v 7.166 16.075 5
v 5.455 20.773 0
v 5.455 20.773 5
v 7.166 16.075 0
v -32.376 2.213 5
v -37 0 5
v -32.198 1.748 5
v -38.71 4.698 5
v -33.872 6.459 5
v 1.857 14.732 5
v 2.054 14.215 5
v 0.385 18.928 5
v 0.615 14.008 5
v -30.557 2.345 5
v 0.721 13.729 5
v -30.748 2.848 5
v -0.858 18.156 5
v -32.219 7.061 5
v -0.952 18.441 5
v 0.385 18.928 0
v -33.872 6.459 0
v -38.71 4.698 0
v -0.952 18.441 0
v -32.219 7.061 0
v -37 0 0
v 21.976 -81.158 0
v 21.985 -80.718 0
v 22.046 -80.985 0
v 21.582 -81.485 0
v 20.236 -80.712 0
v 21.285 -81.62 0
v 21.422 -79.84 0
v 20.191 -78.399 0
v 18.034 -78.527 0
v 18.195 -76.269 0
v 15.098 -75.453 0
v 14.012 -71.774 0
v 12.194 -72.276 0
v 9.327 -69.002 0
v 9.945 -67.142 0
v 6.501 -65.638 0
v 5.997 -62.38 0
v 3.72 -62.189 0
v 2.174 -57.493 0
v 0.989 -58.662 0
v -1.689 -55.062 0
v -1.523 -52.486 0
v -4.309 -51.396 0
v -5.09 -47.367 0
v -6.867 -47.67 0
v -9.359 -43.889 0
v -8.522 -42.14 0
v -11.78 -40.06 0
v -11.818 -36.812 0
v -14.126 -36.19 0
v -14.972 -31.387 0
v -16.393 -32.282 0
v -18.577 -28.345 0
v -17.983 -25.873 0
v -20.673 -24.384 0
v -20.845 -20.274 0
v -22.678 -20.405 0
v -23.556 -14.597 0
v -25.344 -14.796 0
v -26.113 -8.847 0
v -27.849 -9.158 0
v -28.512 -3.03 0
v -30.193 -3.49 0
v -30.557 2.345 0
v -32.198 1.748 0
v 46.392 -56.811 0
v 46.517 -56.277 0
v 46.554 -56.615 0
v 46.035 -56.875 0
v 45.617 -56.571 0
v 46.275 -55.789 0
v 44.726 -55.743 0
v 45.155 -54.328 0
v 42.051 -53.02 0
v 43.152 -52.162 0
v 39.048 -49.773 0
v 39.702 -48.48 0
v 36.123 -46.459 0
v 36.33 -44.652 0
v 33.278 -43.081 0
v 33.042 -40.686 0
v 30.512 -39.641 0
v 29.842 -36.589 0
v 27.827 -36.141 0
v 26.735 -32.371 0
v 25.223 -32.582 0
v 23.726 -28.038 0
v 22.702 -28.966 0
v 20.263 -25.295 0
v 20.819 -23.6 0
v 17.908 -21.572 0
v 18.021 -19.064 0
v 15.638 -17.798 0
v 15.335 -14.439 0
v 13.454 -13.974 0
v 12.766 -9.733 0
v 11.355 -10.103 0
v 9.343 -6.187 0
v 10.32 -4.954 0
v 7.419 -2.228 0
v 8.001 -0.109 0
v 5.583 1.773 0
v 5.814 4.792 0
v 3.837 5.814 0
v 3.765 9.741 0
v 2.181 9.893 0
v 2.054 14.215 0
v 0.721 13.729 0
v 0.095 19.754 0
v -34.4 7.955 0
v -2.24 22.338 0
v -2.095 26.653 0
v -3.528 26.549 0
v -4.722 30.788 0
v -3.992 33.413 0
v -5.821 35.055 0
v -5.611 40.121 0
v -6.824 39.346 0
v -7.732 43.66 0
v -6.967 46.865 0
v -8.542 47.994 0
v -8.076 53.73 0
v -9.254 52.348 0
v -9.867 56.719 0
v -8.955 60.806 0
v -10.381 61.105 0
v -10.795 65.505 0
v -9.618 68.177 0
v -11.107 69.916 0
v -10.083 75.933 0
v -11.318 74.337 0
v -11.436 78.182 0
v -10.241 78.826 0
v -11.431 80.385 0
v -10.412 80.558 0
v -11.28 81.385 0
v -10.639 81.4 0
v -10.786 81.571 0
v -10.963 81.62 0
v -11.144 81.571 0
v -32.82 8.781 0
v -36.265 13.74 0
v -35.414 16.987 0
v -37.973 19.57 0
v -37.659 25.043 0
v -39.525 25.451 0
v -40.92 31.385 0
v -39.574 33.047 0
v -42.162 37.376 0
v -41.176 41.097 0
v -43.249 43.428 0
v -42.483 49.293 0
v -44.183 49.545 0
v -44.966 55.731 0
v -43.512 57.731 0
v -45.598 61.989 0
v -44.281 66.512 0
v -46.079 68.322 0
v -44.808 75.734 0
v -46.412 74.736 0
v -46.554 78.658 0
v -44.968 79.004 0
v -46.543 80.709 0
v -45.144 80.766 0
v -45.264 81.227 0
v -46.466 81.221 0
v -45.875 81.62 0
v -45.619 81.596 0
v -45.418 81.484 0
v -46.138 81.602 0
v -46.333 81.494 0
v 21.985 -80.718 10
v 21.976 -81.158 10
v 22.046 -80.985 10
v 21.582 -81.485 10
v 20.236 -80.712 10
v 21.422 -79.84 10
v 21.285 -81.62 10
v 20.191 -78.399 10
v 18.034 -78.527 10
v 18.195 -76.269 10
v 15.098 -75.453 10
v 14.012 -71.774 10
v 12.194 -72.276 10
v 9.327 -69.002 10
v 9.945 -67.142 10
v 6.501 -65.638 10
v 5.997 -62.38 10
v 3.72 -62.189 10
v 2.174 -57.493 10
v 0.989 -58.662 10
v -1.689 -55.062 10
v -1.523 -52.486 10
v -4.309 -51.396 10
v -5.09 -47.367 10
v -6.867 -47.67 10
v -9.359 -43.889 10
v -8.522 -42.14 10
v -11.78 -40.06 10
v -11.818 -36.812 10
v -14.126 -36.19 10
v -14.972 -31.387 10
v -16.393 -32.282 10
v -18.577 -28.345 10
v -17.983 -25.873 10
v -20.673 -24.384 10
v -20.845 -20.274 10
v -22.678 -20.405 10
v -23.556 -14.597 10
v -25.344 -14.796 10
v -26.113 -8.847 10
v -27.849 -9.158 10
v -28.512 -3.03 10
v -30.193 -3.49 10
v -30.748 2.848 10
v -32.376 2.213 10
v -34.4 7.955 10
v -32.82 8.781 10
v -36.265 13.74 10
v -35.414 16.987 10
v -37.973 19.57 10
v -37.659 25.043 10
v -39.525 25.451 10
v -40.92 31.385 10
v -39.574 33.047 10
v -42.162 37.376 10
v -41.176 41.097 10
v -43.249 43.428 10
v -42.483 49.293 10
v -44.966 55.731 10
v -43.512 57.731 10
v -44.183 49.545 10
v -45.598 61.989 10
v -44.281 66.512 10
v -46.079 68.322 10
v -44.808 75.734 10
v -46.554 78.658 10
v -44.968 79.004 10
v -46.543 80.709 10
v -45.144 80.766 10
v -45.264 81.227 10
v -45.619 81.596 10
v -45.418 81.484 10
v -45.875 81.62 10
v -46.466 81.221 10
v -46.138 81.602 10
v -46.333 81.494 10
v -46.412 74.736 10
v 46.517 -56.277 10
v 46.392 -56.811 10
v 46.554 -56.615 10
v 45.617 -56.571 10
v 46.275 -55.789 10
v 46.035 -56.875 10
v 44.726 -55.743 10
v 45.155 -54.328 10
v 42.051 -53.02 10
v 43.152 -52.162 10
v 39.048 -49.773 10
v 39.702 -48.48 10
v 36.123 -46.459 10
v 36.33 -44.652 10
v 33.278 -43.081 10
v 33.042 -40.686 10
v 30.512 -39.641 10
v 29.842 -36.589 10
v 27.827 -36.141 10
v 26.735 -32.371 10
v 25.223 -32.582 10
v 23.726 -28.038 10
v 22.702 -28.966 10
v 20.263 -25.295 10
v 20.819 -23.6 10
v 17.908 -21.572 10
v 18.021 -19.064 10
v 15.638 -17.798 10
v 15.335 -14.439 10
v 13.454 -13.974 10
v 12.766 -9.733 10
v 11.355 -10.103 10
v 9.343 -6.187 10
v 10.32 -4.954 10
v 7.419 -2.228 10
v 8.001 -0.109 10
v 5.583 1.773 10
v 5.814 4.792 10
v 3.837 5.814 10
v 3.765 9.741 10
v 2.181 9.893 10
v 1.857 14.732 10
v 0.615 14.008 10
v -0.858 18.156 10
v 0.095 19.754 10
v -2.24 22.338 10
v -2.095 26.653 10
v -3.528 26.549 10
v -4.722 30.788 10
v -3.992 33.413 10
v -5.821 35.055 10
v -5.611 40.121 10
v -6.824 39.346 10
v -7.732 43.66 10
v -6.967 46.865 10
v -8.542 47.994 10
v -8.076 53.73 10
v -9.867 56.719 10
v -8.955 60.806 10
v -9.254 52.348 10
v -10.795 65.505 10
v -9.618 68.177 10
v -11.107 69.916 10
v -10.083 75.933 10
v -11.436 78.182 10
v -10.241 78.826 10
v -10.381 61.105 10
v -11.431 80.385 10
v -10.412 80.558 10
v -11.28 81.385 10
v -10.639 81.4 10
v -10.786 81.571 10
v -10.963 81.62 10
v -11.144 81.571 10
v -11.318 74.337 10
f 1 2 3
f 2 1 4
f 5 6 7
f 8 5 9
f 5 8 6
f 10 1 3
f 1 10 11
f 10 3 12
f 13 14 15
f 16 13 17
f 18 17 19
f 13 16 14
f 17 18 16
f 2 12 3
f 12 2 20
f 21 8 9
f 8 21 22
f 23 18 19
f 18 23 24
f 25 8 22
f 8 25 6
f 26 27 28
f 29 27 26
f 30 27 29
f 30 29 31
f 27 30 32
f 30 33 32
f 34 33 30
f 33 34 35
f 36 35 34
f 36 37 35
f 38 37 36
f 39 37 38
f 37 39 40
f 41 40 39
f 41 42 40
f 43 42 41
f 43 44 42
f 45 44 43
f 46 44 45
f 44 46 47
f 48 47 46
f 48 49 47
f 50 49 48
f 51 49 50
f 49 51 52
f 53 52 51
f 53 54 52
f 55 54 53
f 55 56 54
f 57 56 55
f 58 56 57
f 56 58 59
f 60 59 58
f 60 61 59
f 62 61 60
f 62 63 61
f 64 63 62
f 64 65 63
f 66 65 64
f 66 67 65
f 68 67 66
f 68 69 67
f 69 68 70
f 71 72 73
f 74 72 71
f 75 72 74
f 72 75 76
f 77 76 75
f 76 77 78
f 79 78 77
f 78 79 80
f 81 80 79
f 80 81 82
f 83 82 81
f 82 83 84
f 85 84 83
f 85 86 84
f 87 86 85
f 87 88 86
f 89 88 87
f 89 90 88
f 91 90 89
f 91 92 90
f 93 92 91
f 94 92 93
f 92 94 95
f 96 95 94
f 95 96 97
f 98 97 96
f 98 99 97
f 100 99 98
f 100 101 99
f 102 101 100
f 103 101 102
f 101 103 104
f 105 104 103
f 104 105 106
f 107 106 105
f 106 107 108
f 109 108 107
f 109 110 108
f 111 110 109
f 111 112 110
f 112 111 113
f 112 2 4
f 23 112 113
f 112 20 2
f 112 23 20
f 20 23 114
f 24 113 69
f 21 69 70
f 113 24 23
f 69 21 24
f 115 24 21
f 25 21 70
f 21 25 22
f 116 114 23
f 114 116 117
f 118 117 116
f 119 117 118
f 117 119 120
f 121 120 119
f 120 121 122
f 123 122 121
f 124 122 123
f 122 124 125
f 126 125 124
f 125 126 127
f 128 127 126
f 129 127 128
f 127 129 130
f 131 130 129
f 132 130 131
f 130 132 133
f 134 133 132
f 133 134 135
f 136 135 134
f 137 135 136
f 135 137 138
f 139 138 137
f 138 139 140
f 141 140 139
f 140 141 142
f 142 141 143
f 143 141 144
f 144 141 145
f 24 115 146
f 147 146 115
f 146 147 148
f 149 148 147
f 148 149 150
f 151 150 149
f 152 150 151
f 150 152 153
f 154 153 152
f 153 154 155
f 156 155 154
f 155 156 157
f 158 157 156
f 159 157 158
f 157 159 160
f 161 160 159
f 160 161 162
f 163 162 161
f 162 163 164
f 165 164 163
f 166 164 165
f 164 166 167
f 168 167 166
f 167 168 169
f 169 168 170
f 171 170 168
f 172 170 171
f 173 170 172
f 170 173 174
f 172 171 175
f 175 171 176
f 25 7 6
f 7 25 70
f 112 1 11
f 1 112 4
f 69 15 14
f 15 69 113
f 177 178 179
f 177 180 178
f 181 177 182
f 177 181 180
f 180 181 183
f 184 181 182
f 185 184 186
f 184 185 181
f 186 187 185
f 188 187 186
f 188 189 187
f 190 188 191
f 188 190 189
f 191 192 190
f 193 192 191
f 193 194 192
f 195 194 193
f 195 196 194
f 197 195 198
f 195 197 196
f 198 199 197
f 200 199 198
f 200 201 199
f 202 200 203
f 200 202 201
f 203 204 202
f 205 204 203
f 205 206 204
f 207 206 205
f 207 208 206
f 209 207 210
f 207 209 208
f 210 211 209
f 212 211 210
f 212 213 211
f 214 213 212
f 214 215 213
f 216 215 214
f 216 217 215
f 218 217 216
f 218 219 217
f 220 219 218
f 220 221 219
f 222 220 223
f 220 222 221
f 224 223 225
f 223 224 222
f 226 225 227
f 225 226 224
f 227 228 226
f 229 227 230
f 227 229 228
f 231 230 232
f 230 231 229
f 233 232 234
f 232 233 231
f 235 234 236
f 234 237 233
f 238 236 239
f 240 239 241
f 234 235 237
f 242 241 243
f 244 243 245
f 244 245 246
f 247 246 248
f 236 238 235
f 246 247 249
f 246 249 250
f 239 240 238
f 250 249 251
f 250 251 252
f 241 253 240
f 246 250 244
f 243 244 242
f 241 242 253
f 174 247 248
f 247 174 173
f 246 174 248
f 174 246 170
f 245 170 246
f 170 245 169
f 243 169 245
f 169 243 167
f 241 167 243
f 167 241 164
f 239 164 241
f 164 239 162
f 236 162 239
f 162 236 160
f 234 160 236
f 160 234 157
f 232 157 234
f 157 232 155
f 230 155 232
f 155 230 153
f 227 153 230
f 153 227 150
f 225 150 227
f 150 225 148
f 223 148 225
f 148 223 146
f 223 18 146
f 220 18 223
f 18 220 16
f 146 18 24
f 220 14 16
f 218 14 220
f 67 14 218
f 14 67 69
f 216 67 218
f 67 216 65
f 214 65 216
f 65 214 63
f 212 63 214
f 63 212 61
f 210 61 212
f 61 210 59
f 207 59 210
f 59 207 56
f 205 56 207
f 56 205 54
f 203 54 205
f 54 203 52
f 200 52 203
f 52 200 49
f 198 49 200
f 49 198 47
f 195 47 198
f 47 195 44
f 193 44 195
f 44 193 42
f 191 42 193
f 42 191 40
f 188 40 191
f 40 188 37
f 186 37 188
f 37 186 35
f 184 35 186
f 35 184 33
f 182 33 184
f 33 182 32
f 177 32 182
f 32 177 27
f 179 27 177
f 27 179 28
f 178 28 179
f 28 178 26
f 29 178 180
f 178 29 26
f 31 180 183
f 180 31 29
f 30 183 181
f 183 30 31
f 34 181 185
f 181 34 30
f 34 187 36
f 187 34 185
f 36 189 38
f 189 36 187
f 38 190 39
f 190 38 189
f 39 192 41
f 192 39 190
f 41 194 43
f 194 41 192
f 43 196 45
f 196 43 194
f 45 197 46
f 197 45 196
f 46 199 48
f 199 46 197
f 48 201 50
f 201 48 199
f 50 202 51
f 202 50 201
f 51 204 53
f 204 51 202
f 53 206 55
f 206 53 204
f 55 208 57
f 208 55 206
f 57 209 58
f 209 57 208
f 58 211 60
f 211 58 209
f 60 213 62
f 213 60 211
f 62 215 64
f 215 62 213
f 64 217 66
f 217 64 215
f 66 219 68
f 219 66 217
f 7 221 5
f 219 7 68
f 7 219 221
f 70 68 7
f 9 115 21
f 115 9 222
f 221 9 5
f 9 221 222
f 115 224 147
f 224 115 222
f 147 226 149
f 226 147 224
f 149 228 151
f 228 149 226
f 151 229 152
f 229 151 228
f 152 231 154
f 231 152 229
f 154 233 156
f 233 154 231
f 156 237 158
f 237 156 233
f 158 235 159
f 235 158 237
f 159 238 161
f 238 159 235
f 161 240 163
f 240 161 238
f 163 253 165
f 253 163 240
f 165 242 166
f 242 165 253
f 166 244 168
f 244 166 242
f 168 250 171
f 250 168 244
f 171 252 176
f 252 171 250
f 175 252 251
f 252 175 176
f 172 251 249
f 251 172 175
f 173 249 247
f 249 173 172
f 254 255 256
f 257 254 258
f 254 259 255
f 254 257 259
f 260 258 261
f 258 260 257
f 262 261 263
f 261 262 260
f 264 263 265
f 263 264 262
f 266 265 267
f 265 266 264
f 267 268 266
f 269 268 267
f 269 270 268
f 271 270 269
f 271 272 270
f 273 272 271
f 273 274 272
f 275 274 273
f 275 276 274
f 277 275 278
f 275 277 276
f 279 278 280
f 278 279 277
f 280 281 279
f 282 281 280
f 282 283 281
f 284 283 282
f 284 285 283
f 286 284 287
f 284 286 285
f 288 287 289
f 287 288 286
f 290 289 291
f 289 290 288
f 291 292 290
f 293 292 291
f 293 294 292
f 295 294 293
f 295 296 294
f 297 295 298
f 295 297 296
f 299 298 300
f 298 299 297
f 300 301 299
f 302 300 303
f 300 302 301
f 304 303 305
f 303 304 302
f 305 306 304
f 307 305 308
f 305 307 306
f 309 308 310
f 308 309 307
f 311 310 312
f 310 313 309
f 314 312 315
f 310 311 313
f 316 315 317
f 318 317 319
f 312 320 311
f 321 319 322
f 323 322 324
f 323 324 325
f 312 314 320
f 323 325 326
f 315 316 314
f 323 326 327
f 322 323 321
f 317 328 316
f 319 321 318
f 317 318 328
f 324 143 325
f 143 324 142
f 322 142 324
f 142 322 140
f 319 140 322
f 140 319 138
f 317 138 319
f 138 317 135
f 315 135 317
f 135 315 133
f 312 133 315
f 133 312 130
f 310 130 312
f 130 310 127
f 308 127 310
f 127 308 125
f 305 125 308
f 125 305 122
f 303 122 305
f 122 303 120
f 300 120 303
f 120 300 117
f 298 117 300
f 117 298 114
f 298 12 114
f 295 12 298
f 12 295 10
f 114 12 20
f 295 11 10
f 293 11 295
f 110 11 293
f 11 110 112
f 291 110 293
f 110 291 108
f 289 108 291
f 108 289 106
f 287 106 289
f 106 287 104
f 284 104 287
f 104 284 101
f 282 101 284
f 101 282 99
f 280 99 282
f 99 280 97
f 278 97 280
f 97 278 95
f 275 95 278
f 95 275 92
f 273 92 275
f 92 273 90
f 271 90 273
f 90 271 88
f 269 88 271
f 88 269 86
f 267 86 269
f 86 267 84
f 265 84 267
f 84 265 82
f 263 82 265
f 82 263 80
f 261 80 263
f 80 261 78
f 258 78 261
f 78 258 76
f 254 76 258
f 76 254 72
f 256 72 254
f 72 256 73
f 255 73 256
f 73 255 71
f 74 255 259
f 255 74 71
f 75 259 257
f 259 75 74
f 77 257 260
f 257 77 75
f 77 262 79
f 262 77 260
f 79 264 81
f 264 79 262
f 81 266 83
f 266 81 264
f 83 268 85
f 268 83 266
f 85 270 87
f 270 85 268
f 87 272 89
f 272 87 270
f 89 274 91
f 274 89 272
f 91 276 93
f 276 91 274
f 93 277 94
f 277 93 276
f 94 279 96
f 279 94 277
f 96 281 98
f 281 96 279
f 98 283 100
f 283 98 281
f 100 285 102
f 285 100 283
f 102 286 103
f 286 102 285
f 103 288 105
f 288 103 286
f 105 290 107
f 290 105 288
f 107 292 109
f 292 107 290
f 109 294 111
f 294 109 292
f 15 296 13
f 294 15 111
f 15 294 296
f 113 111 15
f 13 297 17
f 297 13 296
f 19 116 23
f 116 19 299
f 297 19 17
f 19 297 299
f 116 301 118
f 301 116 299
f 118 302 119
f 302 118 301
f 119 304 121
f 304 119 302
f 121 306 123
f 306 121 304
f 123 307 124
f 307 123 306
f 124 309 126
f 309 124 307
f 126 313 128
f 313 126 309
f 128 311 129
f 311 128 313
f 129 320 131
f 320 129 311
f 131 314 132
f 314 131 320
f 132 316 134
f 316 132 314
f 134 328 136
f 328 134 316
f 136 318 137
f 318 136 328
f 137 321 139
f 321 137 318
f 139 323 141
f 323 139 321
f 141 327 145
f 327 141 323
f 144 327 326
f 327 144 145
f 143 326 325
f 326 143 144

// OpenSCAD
// Module names are of the form poly_<inkscape-path-id>().  As a result,
// you can associate a polygon in this OpenSCAD program with the corresponding
// SVG element in the Inkscape document by looking for the XML element with
// the attribute id="inkscape-path-id".

// fudge value is used to ensure that subtracted solids are a tad taller
// in the z dimension than the polygon being subtracted from.  This helps
// keep the resulting .stl file manifold.
fudge = 0.1;

translate([-37,0,0])rotate([0,0,20]) cube([47,5,5]);
module poly_path3621(h)
{
  scale([25.4/90, -25.4/90, 1]) union()
  {
    linear_extrude(height=h)
      polygon([[63.901080,278.246520],[53.497240,267.353050],[43.208361,256.095766],[33.049464,244.496114],[23.035568,232.575535],[13.181694,220.355473],[3.502861,207.857371],[-5.985910,195.102672],[-15.269600,182.112820],[-24.333188,168.909258],[-33.161655,155.513429],[-41.739980,141.946776],[-50.053143,128.230743],[-58.086125,114.386772],[-65.823905,100.436308],[-73.251464,86.400793],[-80.353781,72.301670],[-89.803085,52.424861],[-98.677926,32.450628],[-106.981598,12.365769],[-114.717395,-7.842919],[-121.888610,-28.188638],[-128.498537,-48.684591],[-134.550468,-69.343980],[-140.047699,-90.180007],[-144.993521,-111.205875],[-149.391230,-132.434786],[-153.244117,-153.879943],[-156.555478,-175.554547],[-159.328604,-197.471802],[-161.566791,-219.644909],[-163.273331,-242.087071],[-164.451518,-264.811490],[-164.954672,-278.710547],[-164.917260,-285.975577],[-164.643459,-287.792451],[-164.171657,-288.757360],[-163.480901,-289.139150],[-162.550239,-289.206670],[-161.641102,-289.119946],[-160.930982,-288.723085],[-160.382697,-287.811049],[-159.959062,-286.178805],[-159.337017,-279.933545],[-158.767384,-268.347020],[-156.901569,-235.673357],[-154.176783,-204.560216],[-150.530553,-174.658677],[-145.900404,-145.619815],[-140.223864,-117.094709],[-133.438458,-88.734436],[-125.481713,-60.190074],[-116.291155,-31.112700],[-108.950586,-10.089745],[-101.024934,10.737268],[-92.526515,31.347810],[-83.467641,51.721351],[-73.860628,71.837362],[-63.717790,91.675312],[-53.051441,111.214671],[-41.873895,130.434911],[-30.197466,149.315502],[-18.034470,167.835913],[-5.397219,185.975615],[7.701970,203.714078],[21.250786,221.030773],[35.236912,237.905170],[49.648035,254.316739],[64.471840,270.244950],[71.543929,277.791044],[75.905375,282.898356],[77.898794,286.009995],[78.114560,286.955909],[77.866800,287.569070],[76.472014,288.725625],[75.418200,289.206670],[71.700514,285.987125],[63.901080,278.246520]]);
  }
}

module poly_path3623(h)
{
  scale([25.4/90, -25.4/90, 1]) union()
  {
    linear_extrude(height=h)
      polygon([[148.998930,187.867870],[138.358914,176.360483],[127.996180,164.619076],[117.913519,152.650312],[108.113723,140.460852],[98.599583,128.057360],[89.373893,115.446498],[80.439442,102.634927],[71.799024,89.629310],[63.455431,76.436310],[55.411453,63.062589],[47.669883,49.514808],[40.233513,35.799631],[33.105134,21.923719],[26.287538,7.893736],[19.783518,-6.283658],[13.595864,-20.601799],[7.727369,-35.054025],[2.180825,-49.633674],[-3.040977,-64.334084],[-7.935245,-79.148592],[-12.499187,-94.070536],[-16.730011,-109.093254],[-20.624925,-124.210083],[-24.181138,-139.414361],[-27.395858,-154.699426],[-30.266292,-170.058616],[-32.789650,-185.485268],[-34.963139,-200.972720],[-36.783967,-216.514309],[-38.249343,-232.103374],[-39.356474,-247.733251],[-40.102570,-263.397280],[-40.522543,-277.022899],[-40.503627,-284.828999],[-39.970073,-288.371587],[-39.486634,-289.030316],[-38.846130,-289.206670],[-38.219873,-289.031121],[-37.698085,-288.424855],[-36.893948,-285.442452],[-36.285777,-279.304023],[-35.725630,-269.054130],[-34.080492,-241.573169],[-31.729307,-215.452378],[-28.616119,-190.382895],[-24.684970,-166.055856],[-19.879902,-142.162399],[-14.144957,-118.393659],[-7.424179,-94.440774],[0.338390,-69.994880],[6.578726,-52.198708],[13.339089,-34.517026],[20.602184,-16.978723],[28.350712,0.387310],[36.567378,17.552182],[45.234883,34.487003],[54.335932,51.162882],[63.853228,67.550929],[73.769473,83.622253],[84.067371,99.347963],[94.729624,114.699170],[105.738937,129.646983],[117.078012,144.162511],[128.729552,158.216863],[140.676260,171.781150],[152.900840,184.826480],[159.997313,192.501587],[163.965050,197.678974],[164.822712,199.407963],[164.954672,200.604851],[164.379759,201.300415],[163.116800,201.525430],[161.633914,200.447763],[158.477812,197.513523],[148.998930,187.867870]]);
  }
}

poly_path3621(10);
poly_path3623(10);
